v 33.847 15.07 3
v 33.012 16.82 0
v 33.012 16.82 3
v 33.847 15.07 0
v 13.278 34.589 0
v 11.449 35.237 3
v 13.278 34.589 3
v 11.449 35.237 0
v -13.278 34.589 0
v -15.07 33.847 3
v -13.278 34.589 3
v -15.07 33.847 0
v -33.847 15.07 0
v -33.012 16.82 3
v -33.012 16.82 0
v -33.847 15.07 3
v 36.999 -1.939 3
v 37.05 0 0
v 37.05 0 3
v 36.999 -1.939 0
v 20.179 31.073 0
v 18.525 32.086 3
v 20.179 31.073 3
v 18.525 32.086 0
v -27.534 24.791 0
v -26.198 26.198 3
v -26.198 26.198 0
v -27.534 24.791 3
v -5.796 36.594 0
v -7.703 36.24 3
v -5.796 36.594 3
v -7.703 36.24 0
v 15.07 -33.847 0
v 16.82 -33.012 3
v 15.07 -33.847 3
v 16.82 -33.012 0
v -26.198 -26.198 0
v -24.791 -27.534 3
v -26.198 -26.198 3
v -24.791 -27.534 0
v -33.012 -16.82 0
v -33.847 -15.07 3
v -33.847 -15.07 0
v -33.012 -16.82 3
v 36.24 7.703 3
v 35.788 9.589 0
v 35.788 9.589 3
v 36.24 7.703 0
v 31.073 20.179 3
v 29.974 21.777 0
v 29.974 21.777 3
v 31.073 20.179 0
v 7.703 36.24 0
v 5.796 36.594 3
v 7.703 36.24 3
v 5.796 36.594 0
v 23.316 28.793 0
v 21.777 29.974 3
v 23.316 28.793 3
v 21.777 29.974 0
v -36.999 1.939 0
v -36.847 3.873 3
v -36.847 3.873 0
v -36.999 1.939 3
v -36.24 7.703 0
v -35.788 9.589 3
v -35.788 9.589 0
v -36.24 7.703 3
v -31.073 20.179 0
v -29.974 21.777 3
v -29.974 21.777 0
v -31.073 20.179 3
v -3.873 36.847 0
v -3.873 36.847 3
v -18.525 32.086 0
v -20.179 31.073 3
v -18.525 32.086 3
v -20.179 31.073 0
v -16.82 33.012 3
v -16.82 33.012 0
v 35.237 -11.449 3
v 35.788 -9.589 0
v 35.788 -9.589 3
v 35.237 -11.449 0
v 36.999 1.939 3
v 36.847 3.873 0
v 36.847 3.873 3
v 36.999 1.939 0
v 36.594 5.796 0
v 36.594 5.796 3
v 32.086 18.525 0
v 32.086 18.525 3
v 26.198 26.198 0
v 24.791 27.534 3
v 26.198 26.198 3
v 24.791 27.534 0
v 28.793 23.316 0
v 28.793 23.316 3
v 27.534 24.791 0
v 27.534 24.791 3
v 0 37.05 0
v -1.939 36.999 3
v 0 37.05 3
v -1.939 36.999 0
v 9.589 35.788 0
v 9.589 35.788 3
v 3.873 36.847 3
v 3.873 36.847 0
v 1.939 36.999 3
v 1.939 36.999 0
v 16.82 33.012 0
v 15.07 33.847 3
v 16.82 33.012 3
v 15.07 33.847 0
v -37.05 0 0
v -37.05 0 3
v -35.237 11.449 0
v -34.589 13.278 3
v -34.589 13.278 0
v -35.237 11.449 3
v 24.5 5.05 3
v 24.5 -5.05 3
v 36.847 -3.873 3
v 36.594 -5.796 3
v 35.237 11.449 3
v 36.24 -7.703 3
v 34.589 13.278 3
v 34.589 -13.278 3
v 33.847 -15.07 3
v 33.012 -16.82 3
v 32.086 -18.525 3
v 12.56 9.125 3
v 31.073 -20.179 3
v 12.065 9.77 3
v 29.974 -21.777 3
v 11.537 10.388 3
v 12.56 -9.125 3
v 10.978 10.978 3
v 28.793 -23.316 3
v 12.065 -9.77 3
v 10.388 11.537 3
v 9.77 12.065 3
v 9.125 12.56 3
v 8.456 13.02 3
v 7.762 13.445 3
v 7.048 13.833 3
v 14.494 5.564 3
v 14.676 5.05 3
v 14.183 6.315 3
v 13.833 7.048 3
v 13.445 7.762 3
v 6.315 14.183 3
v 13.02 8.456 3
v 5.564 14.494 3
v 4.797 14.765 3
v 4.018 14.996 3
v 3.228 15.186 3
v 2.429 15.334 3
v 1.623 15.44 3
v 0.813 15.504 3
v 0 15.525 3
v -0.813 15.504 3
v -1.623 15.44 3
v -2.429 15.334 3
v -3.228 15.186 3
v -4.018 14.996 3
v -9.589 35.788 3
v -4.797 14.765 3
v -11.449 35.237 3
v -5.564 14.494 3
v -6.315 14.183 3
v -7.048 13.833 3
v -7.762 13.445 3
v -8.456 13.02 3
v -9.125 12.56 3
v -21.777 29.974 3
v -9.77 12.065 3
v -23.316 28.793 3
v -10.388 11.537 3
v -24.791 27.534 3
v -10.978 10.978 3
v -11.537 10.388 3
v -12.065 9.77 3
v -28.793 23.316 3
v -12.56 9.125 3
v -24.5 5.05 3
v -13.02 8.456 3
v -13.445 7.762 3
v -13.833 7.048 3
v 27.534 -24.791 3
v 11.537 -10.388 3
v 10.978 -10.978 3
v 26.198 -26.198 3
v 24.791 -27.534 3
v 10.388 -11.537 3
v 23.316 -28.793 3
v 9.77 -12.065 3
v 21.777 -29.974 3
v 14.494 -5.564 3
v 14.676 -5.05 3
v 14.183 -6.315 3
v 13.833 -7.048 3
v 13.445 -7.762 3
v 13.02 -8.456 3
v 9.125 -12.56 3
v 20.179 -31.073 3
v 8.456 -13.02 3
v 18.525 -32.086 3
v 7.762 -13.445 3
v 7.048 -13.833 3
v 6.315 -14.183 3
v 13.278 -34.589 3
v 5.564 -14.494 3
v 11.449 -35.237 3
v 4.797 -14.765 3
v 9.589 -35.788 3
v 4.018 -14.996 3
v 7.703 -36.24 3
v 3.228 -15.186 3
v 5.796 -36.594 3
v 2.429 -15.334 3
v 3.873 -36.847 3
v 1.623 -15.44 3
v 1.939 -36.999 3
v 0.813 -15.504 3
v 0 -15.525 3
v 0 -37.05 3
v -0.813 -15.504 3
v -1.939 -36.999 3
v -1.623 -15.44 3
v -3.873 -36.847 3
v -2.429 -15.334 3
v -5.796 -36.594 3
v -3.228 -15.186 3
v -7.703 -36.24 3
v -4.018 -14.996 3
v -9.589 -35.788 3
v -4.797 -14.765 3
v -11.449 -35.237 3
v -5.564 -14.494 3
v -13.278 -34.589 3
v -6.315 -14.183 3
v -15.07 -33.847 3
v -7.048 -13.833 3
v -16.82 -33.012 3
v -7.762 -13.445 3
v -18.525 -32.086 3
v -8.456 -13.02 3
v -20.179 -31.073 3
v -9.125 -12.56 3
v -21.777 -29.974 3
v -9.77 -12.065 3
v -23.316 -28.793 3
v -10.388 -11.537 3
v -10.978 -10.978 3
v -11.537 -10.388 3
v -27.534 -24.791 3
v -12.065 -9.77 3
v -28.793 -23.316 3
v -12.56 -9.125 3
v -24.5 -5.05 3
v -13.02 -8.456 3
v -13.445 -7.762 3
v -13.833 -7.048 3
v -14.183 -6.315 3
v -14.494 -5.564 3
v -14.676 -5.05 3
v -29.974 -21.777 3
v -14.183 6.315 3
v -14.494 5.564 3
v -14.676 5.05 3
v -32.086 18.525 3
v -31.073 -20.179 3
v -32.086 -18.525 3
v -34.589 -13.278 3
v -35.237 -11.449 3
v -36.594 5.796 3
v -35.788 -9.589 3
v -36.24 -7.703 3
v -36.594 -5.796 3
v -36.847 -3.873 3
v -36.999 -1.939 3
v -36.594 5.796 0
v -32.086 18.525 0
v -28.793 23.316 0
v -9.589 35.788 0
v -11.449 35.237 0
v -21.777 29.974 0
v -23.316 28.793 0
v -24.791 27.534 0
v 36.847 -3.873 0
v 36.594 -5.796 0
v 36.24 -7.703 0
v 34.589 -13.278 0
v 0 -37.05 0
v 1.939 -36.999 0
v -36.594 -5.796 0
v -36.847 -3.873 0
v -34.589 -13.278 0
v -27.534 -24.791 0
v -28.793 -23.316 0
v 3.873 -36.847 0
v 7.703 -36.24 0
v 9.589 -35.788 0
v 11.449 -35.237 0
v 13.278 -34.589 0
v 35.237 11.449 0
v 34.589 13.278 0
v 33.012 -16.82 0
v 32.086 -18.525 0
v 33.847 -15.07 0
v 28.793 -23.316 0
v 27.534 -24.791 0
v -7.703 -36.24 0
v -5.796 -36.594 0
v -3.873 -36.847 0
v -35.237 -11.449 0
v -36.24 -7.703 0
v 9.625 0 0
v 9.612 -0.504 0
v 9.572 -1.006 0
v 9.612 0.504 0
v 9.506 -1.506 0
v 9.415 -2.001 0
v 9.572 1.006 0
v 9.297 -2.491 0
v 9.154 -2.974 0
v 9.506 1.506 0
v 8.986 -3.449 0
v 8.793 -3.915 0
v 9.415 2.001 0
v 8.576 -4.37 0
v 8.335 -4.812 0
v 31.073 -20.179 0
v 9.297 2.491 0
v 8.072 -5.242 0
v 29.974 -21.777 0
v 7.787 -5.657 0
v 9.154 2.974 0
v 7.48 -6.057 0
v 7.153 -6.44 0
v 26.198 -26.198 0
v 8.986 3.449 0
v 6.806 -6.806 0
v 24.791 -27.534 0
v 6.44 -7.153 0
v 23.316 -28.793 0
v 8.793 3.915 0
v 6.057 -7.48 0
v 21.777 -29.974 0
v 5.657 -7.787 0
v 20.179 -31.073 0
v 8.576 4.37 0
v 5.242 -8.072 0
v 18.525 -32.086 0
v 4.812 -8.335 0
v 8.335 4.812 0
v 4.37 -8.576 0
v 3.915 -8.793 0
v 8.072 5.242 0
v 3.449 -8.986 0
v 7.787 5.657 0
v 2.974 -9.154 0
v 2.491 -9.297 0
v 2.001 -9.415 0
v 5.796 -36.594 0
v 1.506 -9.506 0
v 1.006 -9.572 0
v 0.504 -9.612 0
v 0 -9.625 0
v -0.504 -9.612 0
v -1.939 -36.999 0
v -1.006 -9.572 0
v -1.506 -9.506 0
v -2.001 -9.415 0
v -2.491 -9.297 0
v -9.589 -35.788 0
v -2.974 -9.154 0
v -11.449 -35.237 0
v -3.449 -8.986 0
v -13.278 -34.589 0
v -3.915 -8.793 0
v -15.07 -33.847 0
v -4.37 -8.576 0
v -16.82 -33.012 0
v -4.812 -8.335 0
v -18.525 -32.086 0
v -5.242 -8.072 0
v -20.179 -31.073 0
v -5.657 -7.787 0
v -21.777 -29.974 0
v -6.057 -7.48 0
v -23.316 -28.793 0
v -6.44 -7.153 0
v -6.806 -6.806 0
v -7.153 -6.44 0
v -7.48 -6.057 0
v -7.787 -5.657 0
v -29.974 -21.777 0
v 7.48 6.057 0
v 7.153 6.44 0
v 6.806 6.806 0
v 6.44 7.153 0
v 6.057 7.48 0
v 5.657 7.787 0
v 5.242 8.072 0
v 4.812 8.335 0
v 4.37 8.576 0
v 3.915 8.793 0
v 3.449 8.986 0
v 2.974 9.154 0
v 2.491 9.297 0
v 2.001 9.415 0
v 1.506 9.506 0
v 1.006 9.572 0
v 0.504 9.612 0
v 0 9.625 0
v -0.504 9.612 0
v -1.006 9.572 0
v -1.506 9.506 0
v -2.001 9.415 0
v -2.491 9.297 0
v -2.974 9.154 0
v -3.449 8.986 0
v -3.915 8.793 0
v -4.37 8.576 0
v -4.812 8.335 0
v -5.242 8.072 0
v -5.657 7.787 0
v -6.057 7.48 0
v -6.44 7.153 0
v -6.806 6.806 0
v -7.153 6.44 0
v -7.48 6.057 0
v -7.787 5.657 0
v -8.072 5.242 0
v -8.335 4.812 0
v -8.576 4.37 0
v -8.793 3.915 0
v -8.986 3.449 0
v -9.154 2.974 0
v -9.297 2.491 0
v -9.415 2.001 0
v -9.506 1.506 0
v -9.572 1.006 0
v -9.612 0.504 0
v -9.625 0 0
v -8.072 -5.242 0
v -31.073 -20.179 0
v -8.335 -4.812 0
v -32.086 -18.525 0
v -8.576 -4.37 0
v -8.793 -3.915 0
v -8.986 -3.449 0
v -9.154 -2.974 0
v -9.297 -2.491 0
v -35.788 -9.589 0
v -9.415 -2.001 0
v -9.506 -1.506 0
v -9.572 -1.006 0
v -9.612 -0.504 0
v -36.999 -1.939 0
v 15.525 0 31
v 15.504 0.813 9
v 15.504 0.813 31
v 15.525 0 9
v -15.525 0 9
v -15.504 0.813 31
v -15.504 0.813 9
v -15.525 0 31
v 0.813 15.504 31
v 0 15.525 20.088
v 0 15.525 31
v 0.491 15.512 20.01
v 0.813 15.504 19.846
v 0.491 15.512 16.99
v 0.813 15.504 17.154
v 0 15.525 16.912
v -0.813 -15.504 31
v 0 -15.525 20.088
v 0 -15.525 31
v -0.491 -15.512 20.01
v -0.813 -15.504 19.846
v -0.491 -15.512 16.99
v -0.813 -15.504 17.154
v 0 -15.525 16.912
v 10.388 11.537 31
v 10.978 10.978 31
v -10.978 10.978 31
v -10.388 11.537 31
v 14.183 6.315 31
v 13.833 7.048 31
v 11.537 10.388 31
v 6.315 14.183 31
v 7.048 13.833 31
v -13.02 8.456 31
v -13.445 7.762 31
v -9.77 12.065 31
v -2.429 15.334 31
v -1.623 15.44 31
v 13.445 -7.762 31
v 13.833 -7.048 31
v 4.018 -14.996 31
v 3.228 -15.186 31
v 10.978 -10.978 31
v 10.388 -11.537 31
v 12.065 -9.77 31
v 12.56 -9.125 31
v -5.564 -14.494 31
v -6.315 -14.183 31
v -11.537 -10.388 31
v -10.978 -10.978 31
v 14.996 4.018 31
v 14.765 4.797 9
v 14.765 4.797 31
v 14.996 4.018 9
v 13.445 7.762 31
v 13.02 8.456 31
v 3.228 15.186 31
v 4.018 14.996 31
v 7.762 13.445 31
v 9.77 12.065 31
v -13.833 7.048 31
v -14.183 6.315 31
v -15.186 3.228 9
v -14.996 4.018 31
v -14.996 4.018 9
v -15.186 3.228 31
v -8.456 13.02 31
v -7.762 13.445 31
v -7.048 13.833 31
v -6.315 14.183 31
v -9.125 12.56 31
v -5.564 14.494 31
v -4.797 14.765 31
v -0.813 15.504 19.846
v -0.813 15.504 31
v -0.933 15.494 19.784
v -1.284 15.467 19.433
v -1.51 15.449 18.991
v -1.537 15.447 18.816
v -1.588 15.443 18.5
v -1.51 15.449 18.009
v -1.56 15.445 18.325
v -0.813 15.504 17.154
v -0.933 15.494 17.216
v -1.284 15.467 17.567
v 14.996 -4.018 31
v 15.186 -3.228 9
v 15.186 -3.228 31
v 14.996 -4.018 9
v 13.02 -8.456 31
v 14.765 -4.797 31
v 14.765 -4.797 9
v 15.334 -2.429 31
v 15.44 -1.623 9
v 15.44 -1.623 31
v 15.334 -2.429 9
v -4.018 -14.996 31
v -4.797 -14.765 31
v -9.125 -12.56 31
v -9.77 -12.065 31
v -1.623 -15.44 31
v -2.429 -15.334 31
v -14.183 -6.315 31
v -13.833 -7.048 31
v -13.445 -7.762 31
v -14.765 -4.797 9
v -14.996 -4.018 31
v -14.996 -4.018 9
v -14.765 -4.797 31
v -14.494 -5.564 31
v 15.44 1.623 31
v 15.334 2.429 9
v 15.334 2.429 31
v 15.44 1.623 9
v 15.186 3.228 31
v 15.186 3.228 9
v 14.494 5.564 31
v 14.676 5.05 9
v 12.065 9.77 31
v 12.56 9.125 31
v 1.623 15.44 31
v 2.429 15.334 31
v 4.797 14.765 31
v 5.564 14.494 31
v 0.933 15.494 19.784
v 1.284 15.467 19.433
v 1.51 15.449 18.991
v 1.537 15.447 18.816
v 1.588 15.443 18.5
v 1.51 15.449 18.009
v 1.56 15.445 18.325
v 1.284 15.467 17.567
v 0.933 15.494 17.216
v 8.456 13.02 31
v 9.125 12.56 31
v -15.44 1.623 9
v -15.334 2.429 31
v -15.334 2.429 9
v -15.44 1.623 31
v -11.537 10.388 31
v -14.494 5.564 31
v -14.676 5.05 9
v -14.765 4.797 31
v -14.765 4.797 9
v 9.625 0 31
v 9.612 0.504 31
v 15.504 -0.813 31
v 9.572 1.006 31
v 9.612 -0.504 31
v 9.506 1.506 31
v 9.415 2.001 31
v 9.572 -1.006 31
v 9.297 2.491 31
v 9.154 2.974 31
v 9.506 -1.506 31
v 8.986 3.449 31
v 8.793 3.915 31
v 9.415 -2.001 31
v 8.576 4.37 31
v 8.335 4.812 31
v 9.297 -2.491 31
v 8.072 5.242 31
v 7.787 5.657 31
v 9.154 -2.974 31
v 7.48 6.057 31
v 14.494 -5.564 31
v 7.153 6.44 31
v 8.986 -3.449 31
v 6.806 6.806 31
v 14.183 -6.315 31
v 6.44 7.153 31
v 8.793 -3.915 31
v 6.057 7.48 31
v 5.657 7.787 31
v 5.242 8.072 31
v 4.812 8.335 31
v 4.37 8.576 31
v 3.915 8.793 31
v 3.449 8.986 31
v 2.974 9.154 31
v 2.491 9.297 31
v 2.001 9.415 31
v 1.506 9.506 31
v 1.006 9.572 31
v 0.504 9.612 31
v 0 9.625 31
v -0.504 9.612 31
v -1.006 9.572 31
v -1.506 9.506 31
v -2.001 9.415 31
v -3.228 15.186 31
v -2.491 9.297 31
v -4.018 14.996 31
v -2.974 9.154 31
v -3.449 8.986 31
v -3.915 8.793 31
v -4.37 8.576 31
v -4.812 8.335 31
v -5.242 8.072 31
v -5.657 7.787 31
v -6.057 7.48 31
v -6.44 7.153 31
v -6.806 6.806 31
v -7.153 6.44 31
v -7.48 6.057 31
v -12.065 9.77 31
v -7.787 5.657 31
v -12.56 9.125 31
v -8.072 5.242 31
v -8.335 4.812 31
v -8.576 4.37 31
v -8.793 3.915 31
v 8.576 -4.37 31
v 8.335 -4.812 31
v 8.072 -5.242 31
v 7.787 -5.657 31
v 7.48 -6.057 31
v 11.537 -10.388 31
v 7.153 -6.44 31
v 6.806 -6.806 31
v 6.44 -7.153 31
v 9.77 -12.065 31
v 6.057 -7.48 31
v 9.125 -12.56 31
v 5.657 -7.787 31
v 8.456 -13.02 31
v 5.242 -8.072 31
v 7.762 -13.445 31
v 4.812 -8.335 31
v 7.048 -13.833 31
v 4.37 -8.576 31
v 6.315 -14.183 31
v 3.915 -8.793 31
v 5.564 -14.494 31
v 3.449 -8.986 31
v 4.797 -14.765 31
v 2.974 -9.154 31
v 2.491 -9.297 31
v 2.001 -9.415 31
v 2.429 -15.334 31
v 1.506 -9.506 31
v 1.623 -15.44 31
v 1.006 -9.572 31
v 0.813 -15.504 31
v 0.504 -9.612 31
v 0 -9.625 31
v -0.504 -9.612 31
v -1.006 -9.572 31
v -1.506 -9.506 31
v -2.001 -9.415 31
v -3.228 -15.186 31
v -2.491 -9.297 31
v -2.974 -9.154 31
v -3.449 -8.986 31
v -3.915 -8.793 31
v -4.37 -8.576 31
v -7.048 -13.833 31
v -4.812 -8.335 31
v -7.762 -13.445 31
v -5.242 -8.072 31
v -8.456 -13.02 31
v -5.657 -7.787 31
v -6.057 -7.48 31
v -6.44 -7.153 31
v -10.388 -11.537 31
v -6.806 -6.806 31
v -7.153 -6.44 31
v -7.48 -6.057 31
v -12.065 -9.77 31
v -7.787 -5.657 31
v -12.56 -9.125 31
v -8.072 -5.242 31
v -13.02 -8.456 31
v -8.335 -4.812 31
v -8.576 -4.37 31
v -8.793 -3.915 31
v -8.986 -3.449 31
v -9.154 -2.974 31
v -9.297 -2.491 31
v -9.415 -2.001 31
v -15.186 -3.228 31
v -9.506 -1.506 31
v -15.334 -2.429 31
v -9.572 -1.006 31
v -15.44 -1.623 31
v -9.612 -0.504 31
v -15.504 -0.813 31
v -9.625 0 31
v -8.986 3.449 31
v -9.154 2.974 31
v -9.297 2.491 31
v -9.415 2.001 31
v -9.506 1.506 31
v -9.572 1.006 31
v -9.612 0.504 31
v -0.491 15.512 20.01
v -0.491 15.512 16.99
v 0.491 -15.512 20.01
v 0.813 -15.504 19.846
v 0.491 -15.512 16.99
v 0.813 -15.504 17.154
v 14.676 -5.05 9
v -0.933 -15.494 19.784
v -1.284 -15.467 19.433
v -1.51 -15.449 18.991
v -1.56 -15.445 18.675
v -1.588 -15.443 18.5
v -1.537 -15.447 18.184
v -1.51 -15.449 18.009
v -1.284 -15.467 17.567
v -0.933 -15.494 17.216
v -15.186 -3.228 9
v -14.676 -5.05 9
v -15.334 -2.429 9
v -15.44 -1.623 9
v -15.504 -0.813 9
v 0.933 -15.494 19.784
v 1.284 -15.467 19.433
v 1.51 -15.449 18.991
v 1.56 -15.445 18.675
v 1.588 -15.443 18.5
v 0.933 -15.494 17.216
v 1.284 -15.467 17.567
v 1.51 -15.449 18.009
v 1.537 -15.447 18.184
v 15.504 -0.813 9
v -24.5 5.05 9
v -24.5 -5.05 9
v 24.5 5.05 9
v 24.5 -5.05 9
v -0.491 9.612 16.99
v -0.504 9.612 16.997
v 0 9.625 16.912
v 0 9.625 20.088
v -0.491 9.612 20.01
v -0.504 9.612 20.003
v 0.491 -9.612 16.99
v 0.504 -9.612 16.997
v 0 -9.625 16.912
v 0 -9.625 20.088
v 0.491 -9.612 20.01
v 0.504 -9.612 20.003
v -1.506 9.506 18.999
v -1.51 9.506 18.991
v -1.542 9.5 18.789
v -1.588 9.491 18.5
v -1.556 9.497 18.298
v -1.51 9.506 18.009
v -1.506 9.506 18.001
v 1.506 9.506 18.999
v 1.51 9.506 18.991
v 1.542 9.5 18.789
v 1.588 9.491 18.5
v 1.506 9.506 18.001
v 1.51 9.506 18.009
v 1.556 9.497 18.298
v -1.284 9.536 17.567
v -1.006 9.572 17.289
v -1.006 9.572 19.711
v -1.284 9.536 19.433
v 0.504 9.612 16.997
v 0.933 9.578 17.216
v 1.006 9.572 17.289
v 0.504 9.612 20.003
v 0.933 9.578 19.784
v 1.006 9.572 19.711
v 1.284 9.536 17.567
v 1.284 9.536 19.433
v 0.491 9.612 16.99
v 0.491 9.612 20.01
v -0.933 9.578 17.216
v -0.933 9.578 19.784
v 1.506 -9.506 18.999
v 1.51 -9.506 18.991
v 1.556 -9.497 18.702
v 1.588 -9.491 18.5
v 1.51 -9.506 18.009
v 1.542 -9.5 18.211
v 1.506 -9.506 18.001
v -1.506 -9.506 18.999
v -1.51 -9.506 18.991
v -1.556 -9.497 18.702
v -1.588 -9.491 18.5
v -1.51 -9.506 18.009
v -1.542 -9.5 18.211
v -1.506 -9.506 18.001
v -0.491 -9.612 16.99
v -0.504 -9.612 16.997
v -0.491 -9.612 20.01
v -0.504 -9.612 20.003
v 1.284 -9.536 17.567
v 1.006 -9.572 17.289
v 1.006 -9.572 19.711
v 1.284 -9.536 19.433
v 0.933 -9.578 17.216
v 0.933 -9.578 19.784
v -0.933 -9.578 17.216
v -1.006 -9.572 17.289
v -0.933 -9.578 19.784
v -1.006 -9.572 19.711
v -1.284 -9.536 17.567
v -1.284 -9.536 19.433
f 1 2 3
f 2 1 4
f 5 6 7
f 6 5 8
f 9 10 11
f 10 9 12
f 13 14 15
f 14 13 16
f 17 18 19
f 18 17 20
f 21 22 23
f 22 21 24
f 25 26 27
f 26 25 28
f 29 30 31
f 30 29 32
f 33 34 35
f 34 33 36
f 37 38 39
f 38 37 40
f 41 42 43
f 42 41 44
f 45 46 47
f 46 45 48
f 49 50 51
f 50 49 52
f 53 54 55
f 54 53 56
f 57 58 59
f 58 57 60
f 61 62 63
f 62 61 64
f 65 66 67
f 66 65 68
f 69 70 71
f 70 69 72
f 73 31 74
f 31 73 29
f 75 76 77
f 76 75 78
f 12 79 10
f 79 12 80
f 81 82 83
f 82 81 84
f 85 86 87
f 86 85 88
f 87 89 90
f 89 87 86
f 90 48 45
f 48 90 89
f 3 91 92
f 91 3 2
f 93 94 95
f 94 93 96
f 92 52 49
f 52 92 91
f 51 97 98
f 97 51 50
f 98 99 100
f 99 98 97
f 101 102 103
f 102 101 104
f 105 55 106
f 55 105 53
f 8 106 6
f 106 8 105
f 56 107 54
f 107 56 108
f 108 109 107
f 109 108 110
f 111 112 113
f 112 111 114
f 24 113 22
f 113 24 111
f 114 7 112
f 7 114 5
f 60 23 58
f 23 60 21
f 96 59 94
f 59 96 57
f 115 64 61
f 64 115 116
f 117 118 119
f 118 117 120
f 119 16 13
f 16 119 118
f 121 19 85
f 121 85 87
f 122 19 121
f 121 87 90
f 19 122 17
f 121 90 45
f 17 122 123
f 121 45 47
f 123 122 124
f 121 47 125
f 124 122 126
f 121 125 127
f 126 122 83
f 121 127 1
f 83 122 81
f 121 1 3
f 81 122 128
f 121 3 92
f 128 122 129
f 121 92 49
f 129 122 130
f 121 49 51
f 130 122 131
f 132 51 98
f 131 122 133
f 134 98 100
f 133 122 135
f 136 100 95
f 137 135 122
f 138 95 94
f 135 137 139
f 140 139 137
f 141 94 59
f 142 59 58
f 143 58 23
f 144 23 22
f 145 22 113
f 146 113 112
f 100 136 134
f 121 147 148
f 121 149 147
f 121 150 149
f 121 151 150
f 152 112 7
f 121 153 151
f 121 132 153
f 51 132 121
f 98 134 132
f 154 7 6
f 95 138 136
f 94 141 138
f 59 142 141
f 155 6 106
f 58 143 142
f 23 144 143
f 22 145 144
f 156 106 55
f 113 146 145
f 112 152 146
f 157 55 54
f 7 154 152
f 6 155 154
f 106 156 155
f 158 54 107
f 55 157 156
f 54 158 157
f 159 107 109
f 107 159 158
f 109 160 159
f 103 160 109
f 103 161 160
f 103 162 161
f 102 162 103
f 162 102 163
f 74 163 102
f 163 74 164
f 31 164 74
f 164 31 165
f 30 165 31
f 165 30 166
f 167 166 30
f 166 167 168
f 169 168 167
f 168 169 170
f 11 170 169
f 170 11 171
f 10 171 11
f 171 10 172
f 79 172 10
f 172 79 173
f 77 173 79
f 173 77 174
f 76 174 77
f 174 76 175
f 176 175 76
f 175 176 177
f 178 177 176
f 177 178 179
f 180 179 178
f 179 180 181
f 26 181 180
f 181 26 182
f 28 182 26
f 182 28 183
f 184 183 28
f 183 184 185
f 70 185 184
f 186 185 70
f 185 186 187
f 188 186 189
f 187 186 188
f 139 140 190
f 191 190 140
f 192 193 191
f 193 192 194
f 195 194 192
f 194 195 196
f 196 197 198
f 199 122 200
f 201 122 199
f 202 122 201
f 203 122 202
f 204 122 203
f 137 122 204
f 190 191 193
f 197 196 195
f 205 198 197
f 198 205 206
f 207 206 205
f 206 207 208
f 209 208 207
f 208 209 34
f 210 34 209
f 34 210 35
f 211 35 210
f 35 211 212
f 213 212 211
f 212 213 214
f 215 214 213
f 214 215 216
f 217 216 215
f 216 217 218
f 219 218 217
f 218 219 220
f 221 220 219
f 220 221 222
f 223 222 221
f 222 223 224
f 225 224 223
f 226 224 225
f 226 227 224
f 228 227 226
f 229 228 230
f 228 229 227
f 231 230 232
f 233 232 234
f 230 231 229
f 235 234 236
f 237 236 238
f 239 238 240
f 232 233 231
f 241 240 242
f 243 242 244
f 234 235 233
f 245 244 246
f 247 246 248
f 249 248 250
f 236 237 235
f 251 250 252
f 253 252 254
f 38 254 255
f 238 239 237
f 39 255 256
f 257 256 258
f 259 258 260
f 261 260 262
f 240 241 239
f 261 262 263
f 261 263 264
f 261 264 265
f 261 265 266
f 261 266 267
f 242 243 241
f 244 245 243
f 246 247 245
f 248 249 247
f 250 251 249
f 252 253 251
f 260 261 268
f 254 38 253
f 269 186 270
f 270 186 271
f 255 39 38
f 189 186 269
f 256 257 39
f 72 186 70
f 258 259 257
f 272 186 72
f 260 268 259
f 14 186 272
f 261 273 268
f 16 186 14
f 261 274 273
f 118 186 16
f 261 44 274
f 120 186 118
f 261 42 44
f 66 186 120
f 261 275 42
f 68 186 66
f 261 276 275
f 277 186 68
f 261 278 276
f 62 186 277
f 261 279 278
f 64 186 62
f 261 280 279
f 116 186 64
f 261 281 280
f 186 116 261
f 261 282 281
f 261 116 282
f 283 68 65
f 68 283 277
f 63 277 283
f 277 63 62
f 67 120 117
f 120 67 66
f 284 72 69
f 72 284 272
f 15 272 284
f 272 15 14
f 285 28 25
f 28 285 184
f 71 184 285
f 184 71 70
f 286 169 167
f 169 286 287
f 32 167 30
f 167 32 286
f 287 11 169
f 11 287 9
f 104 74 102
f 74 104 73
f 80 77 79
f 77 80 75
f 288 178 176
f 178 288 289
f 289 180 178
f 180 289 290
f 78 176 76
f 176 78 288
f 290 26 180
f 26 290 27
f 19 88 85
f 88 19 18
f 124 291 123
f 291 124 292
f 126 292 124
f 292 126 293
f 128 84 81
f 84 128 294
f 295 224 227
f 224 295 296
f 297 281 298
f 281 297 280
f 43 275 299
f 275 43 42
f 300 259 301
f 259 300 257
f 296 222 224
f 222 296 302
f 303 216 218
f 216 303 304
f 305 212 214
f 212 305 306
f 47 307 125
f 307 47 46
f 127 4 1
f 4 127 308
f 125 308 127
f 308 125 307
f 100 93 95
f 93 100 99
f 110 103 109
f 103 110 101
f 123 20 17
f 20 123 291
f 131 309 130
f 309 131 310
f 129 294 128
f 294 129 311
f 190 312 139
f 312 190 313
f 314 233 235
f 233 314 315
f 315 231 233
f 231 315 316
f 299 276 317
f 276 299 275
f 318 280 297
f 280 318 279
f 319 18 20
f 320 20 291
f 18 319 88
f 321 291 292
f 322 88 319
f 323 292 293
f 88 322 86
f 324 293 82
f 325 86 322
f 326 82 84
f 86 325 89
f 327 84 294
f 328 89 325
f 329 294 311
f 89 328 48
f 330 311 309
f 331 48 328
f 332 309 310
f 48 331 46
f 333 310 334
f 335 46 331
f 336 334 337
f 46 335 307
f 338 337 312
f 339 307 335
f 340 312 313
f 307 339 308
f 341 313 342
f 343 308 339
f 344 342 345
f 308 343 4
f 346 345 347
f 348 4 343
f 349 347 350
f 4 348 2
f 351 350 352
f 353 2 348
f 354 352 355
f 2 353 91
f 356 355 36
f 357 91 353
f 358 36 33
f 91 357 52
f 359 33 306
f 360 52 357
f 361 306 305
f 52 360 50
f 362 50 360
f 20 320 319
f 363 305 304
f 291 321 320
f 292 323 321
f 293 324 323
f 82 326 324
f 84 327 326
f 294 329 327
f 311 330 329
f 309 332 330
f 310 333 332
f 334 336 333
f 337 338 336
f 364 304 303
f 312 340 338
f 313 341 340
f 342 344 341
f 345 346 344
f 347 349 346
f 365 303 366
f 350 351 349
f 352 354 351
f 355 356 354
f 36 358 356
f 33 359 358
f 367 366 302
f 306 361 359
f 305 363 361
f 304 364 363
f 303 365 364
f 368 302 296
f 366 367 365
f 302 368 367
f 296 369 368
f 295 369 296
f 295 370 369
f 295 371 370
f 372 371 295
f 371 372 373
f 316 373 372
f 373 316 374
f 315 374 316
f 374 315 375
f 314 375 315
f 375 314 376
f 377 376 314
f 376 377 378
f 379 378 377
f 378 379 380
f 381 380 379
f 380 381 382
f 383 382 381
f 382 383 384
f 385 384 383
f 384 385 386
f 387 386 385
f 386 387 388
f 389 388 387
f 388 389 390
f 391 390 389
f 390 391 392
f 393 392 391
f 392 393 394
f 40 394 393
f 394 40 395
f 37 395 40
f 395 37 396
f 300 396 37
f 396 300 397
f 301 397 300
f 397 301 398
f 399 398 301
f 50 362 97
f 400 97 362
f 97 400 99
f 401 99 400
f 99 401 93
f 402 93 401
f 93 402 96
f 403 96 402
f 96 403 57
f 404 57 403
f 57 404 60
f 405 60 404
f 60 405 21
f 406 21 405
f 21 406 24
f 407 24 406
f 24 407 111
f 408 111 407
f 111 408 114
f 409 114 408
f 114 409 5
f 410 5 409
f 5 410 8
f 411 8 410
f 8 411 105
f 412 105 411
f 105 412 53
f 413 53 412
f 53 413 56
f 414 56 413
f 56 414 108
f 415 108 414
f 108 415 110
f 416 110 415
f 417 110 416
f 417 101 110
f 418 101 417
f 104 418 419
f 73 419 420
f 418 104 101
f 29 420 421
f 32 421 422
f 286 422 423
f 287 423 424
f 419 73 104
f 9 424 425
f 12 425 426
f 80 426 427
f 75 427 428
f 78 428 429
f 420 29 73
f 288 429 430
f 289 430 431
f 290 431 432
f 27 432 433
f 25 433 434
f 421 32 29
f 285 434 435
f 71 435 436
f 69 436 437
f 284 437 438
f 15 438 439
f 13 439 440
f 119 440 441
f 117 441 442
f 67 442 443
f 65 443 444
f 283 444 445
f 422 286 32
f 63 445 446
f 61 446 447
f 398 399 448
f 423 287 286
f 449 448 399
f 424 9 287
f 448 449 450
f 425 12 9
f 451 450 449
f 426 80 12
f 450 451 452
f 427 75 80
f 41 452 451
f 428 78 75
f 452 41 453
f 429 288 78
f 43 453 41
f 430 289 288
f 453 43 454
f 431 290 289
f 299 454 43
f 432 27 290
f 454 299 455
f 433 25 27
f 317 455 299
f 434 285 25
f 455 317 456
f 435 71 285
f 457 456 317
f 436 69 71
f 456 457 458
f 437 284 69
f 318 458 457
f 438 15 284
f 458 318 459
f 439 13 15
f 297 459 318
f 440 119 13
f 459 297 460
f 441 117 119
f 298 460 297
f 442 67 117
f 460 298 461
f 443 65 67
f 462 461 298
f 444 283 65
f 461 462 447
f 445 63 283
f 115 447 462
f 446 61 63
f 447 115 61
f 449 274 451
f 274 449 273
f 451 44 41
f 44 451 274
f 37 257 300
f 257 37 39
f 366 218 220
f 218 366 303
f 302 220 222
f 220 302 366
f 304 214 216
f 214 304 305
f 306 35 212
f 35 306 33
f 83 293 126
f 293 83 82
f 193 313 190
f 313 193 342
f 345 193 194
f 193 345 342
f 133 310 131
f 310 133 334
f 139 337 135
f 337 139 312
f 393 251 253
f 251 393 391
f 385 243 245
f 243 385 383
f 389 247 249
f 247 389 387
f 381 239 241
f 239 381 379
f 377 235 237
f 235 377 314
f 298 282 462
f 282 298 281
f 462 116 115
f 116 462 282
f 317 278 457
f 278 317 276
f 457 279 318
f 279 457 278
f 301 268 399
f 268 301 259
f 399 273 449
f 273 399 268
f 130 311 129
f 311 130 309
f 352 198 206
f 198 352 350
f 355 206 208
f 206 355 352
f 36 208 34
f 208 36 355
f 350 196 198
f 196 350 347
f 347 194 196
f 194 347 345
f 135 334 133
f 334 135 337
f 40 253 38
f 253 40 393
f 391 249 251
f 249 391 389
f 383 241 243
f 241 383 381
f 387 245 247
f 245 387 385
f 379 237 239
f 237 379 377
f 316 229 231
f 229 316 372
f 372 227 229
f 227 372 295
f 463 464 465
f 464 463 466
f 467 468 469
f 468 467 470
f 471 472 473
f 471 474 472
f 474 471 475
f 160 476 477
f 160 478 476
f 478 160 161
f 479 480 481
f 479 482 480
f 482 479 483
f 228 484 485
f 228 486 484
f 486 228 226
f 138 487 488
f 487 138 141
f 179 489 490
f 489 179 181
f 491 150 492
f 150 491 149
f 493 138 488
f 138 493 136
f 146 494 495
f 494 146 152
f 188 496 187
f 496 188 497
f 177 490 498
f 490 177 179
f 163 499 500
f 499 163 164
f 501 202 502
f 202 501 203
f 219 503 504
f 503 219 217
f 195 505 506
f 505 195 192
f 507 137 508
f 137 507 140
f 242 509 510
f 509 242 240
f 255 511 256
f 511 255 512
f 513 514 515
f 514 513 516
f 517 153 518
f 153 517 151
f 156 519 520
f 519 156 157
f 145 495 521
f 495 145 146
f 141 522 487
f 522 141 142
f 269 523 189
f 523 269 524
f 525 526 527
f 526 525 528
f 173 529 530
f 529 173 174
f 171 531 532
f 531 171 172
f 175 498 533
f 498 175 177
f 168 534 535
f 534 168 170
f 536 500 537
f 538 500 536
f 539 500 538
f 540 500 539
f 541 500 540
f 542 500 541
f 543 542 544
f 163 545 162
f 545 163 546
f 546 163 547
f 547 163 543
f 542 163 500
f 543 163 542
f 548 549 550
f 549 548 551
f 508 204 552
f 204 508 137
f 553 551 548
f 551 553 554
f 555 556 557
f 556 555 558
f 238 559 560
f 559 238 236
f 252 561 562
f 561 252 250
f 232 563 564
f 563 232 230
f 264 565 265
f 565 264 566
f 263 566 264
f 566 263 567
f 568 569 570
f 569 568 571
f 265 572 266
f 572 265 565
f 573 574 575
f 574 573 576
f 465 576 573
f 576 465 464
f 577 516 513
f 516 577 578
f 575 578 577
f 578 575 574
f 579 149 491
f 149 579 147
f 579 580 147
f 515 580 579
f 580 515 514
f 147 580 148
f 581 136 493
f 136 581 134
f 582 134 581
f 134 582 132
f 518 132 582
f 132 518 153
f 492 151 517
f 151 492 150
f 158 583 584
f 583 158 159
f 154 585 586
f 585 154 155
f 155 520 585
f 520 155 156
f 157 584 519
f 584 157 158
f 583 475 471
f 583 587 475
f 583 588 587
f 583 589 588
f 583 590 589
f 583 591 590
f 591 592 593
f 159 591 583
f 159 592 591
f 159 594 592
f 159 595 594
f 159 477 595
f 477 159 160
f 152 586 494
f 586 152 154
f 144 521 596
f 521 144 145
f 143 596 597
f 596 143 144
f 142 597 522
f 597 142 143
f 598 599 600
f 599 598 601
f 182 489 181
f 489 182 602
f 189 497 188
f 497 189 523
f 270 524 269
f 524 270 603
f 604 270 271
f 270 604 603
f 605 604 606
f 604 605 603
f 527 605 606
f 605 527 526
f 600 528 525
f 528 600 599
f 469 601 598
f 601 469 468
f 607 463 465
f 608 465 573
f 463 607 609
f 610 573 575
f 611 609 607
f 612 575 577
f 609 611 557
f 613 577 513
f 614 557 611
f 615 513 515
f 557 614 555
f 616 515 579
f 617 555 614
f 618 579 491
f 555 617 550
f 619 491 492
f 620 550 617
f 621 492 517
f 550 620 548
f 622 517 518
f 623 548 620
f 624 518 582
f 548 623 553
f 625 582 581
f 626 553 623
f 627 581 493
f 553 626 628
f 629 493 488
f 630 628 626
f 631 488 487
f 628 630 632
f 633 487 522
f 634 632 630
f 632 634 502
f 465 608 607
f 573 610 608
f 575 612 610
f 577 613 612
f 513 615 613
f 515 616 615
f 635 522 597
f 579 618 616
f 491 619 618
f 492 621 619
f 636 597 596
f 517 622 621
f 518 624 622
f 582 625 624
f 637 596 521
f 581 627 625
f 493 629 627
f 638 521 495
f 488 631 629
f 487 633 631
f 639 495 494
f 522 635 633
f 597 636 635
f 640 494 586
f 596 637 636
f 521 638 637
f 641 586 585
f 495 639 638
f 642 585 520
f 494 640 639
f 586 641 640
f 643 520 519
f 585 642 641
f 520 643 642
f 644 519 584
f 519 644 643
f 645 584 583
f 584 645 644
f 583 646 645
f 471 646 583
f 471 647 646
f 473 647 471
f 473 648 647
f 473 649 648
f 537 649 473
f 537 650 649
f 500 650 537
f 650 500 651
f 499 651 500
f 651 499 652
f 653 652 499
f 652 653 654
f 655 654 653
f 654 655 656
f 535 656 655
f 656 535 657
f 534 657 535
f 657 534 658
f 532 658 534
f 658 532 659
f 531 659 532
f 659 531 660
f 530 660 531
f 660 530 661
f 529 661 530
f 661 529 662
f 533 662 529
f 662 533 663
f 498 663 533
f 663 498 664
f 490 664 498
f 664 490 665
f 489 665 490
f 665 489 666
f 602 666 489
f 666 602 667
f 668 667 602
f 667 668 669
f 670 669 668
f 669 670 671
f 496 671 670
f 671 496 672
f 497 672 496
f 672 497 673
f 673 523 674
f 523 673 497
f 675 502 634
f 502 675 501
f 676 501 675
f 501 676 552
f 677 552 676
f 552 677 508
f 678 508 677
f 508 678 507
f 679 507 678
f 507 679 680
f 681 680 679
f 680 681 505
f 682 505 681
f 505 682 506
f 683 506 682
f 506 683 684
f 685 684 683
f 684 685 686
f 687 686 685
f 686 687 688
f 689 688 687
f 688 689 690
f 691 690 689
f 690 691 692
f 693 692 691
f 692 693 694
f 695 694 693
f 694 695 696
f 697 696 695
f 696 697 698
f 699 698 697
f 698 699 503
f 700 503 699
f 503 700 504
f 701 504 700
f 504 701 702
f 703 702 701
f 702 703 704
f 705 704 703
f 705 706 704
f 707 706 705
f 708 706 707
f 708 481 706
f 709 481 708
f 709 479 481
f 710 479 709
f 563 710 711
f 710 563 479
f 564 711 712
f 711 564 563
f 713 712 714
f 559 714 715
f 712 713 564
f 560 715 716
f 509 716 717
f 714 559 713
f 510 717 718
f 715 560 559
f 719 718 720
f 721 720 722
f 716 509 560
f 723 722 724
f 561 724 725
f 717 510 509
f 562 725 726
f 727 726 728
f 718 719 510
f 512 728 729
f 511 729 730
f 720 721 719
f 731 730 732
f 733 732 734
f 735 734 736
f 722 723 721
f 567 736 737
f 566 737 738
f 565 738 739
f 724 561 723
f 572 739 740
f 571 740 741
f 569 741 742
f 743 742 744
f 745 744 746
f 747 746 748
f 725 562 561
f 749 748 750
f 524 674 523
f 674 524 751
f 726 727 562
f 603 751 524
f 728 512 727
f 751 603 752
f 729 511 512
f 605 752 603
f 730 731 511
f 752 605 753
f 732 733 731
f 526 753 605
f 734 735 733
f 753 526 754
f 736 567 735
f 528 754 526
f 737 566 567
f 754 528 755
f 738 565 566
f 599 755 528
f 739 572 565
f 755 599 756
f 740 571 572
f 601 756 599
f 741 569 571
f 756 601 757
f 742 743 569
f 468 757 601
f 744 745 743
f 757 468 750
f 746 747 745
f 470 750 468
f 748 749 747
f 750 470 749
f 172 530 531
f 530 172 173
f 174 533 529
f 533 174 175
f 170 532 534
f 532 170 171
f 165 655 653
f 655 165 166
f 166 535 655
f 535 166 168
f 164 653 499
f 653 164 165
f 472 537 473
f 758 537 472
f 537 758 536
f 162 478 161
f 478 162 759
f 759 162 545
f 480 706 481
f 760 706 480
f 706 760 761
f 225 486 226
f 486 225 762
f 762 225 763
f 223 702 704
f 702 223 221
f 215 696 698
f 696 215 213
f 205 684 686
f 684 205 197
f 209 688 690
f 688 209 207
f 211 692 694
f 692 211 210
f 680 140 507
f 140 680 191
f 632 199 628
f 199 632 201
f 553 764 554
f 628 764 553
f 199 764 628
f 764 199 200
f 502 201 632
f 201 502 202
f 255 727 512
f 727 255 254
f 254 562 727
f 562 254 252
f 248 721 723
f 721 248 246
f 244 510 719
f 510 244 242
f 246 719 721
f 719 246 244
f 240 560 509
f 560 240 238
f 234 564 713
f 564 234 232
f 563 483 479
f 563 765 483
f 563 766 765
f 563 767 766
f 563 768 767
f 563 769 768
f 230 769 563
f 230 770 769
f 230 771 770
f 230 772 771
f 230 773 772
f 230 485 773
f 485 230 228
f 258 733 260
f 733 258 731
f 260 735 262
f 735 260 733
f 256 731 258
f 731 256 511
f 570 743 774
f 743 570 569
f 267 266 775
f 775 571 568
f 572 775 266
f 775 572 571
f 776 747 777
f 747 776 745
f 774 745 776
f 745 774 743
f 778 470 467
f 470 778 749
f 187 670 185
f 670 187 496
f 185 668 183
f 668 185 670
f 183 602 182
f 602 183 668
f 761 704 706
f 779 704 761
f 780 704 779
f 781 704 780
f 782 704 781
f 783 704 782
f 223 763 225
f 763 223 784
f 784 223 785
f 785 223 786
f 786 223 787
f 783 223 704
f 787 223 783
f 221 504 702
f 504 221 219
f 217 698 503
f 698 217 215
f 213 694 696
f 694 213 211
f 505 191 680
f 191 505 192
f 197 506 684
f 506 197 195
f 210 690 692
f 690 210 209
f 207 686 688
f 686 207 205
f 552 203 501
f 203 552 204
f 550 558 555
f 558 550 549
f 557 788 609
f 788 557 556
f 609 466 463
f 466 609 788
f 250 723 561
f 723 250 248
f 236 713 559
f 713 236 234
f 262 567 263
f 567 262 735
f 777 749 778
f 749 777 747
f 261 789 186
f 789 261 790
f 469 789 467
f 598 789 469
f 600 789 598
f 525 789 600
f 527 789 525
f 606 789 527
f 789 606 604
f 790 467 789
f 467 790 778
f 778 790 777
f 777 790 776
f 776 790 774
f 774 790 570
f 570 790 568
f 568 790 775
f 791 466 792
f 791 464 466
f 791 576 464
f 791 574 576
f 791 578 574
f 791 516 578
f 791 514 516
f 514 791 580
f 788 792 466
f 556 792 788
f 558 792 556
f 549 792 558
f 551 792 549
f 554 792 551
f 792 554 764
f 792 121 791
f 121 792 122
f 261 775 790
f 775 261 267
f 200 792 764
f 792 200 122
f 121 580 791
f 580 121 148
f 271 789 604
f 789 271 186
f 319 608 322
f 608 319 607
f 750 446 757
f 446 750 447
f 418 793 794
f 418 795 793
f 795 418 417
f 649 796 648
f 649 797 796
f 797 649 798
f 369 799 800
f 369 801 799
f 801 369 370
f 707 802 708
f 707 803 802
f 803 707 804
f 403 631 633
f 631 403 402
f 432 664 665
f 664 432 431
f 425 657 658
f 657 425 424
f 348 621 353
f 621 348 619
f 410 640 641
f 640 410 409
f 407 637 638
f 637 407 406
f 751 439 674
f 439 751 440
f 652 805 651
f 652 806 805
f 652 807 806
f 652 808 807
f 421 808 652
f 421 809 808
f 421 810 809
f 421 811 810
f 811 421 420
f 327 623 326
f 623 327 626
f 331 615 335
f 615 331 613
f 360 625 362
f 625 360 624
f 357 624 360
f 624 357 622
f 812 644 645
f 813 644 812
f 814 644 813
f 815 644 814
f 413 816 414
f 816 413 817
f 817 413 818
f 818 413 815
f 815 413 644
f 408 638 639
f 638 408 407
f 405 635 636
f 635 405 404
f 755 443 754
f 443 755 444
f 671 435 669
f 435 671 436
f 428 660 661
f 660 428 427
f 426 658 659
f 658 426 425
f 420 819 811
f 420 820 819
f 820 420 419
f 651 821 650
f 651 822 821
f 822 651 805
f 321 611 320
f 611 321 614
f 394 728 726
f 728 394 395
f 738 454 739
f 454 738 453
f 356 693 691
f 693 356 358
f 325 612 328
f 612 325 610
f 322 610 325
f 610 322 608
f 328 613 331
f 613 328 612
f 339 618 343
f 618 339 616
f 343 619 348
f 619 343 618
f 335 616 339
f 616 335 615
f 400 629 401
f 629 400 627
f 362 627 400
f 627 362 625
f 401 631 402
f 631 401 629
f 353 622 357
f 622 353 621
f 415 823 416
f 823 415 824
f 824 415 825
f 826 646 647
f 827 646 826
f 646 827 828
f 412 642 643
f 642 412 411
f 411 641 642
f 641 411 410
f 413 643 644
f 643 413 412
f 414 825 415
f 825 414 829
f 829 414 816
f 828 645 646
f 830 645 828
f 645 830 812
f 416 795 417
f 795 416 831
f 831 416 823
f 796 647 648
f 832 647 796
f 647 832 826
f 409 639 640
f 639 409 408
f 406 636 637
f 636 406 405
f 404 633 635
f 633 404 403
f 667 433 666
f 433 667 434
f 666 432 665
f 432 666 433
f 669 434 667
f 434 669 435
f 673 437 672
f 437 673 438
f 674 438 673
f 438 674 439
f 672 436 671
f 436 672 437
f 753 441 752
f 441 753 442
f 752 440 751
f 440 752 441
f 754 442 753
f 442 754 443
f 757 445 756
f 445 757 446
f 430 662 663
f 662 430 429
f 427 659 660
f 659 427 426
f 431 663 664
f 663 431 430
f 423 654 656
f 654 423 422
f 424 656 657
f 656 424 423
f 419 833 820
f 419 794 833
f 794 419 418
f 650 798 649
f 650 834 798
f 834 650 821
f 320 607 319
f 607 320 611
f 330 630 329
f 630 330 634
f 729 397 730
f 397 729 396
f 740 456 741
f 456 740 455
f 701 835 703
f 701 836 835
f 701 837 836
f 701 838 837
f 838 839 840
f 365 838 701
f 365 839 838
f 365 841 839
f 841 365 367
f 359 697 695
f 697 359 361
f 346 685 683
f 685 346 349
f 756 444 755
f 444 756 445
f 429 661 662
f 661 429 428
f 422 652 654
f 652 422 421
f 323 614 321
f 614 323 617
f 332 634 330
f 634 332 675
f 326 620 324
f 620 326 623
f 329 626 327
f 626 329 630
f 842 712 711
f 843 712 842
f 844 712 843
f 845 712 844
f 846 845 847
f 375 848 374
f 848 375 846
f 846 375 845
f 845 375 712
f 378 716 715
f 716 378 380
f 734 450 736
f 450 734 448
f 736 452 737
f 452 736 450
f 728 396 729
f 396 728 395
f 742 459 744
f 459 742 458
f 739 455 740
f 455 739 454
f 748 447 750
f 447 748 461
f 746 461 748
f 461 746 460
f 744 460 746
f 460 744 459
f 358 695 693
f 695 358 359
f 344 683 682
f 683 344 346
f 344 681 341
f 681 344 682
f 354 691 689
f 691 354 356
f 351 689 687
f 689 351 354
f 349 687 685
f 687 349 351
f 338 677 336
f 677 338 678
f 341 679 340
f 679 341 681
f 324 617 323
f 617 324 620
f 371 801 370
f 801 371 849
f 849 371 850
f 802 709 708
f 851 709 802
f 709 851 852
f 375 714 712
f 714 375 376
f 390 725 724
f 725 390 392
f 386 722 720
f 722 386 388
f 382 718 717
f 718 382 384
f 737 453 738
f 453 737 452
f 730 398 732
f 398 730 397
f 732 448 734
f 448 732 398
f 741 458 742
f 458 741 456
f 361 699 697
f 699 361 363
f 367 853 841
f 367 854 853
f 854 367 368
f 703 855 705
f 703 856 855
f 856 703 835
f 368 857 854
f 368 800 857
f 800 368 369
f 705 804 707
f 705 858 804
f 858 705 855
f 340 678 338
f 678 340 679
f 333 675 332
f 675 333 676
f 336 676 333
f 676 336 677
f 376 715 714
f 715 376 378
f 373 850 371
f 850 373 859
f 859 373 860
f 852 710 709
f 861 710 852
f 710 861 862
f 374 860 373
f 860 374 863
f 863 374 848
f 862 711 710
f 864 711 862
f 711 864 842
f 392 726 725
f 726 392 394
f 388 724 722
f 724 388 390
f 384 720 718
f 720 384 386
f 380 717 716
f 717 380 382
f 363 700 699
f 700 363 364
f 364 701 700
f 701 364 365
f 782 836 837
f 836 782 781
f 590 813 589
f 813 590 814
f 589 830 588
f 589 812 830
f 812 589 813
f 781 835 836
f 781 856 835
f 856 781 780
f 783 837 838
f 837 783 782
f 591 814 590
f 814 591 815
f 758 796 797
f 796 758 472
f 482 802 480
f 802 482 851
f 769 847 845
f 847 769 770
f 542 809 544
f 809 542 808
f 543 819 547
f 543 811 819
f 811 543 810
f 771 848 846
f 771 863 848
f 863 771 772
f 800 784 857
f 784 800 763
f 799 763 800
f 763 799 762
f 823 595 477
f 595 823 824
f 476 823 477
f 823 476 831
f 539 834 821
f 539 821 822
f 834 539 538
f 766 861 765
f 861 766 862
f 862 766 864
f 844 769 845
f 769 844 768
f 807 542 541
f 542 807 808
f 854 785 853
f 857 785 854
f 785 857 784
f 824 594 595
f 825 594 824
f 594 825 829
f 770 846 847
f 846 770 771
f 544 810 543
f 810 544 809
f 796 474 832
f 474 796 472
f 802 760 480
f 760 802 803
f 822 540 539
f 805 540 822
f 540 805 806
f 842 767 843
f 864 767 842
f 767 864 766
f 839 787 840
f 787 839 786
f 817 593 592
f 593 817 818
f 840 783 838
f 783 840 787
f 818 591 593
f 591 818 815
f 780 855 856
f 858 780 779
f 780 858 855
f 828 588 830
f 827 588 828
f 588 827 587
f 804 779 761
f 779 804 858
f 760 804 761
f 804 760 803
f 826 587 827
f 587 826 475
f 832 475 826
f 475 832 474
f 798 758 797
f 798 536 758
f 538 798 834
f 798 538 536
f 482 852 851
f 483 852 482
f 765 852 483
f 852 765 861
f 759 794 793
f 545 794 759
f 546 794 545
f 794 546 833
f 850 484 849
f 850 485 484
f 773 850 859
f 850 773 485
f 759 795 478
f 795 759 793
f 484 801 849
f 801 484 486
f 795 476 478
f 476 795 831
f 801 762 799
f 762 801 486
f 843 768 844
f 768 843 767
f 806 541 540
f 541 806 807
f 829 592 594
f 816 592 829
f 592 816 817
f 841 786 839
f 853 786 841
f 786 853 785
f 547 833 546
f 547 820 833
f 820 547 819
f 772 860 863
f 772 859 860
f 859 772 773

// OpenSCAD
//This is an openscad part used as a flange to connect a zoetrope to a shaft


//render
lower_flange();

//===========Parameters===========

num_frames = 12; //total number of frames to make cutouts for
panel_width = 1.625*25.4;  //size of each panel

//===========Geometry============
clearance = 0.1; //mm - amount to oversize holes so that parts will assemble

d_shaft = .75*25.4; //0.75" shaft diameter in mm
d_mag = 8.1; //  diamete of magnets in mm
h_mag = 2.1; //mm the heigh of the magnets
d_pin = 0.125*25.4; // diameter of pins used to hold shaft to flange
d_flange = 7*25.4; // outer diameter of the flange 
t_flange = 6; //thickness of the flang in mm
t_hub = 6; //thickness of the material around the hub
h_hub = 25; //height of the hub from the surface of the flange
edge_space = 5; //mm from the edge of the flange to the closest part of the frame
d_base = d_shaft+2*t_hub+6;
t_base = 3; //mm thickness of base web
t_panel = 3;//mm how thick each panel is
panel_cut = 3; //mm how deep of a recess to cut for each panel


fudge = 0.01; //mm - use this value to make sure surfaces aren't coincident
//===========Modules=============
module lower_flange(){
    difference(){
        //Make the core of the flange
        union(){
            //This makes the base of the flange
            //cylinder(r = d_flange/2, h= t_flange, $fn = 360);
            //This makes the hub
            //translate([0,0,t_flange-fudge])
            cylinder(r=d_base,h=t_base,$fn = 120);
            cylinder(r = d_shaft/2+t_hub, h = h_hub+t_flange, $fn = 120);
            //add in a block to mate the disks
            translate([-49/2,-10.1/2,0])
            cube([49,10.1,6+t_base]);
        }
        //Then subtract things from it
        
        //Subtract the hole for the shaft
        translate([0,0,-fudge])
        cylinder(r = d_shaft/2+clearance,h = t_flange+h_hub+2*fudge,$fn = 120);
        
        //cut a pin to register the flange to the shaft
               
        translate([0,0,t_flange+h_hub*.5])
        rotate([90,0,0]) 
        cylinder(r=d_pin/2,h=5*d_shaft+2*t_hub+2*fudge,$fn=20,center=true);
        //subtract the holes for the frames
        for (i=[0:num_frames-1]){
            cord_calc(i);
            mag_holes(i);
            
            
        }
        
 
    }
    
  
    
    
    
    
}
module cord_calc(i){
    theta = 2*3.1415/num_frames;
    r_panel = (d_flange/2-edge_space)*cos(theta/2)-t_panel;
 
    rotate([0,0,i*theta*180/3.1415])
    translate([r_panel,-panel_width/2,t_flange+fudge-panel_cut])
    cube([t_panel+clearance,panel_width+clearance,panel_cut]);
  
}

module mag_holes(i){
    theta = 2*3.1415/num_frames;
    
    rotate([0,0,i*theta*180/3.1415])
    translate([d_flange/2-d_mag/2-edge_space,0,-fudge])
    cylinder(r=d_mag/2+clearance, h=h_mag, $fn = 20);
    
}
